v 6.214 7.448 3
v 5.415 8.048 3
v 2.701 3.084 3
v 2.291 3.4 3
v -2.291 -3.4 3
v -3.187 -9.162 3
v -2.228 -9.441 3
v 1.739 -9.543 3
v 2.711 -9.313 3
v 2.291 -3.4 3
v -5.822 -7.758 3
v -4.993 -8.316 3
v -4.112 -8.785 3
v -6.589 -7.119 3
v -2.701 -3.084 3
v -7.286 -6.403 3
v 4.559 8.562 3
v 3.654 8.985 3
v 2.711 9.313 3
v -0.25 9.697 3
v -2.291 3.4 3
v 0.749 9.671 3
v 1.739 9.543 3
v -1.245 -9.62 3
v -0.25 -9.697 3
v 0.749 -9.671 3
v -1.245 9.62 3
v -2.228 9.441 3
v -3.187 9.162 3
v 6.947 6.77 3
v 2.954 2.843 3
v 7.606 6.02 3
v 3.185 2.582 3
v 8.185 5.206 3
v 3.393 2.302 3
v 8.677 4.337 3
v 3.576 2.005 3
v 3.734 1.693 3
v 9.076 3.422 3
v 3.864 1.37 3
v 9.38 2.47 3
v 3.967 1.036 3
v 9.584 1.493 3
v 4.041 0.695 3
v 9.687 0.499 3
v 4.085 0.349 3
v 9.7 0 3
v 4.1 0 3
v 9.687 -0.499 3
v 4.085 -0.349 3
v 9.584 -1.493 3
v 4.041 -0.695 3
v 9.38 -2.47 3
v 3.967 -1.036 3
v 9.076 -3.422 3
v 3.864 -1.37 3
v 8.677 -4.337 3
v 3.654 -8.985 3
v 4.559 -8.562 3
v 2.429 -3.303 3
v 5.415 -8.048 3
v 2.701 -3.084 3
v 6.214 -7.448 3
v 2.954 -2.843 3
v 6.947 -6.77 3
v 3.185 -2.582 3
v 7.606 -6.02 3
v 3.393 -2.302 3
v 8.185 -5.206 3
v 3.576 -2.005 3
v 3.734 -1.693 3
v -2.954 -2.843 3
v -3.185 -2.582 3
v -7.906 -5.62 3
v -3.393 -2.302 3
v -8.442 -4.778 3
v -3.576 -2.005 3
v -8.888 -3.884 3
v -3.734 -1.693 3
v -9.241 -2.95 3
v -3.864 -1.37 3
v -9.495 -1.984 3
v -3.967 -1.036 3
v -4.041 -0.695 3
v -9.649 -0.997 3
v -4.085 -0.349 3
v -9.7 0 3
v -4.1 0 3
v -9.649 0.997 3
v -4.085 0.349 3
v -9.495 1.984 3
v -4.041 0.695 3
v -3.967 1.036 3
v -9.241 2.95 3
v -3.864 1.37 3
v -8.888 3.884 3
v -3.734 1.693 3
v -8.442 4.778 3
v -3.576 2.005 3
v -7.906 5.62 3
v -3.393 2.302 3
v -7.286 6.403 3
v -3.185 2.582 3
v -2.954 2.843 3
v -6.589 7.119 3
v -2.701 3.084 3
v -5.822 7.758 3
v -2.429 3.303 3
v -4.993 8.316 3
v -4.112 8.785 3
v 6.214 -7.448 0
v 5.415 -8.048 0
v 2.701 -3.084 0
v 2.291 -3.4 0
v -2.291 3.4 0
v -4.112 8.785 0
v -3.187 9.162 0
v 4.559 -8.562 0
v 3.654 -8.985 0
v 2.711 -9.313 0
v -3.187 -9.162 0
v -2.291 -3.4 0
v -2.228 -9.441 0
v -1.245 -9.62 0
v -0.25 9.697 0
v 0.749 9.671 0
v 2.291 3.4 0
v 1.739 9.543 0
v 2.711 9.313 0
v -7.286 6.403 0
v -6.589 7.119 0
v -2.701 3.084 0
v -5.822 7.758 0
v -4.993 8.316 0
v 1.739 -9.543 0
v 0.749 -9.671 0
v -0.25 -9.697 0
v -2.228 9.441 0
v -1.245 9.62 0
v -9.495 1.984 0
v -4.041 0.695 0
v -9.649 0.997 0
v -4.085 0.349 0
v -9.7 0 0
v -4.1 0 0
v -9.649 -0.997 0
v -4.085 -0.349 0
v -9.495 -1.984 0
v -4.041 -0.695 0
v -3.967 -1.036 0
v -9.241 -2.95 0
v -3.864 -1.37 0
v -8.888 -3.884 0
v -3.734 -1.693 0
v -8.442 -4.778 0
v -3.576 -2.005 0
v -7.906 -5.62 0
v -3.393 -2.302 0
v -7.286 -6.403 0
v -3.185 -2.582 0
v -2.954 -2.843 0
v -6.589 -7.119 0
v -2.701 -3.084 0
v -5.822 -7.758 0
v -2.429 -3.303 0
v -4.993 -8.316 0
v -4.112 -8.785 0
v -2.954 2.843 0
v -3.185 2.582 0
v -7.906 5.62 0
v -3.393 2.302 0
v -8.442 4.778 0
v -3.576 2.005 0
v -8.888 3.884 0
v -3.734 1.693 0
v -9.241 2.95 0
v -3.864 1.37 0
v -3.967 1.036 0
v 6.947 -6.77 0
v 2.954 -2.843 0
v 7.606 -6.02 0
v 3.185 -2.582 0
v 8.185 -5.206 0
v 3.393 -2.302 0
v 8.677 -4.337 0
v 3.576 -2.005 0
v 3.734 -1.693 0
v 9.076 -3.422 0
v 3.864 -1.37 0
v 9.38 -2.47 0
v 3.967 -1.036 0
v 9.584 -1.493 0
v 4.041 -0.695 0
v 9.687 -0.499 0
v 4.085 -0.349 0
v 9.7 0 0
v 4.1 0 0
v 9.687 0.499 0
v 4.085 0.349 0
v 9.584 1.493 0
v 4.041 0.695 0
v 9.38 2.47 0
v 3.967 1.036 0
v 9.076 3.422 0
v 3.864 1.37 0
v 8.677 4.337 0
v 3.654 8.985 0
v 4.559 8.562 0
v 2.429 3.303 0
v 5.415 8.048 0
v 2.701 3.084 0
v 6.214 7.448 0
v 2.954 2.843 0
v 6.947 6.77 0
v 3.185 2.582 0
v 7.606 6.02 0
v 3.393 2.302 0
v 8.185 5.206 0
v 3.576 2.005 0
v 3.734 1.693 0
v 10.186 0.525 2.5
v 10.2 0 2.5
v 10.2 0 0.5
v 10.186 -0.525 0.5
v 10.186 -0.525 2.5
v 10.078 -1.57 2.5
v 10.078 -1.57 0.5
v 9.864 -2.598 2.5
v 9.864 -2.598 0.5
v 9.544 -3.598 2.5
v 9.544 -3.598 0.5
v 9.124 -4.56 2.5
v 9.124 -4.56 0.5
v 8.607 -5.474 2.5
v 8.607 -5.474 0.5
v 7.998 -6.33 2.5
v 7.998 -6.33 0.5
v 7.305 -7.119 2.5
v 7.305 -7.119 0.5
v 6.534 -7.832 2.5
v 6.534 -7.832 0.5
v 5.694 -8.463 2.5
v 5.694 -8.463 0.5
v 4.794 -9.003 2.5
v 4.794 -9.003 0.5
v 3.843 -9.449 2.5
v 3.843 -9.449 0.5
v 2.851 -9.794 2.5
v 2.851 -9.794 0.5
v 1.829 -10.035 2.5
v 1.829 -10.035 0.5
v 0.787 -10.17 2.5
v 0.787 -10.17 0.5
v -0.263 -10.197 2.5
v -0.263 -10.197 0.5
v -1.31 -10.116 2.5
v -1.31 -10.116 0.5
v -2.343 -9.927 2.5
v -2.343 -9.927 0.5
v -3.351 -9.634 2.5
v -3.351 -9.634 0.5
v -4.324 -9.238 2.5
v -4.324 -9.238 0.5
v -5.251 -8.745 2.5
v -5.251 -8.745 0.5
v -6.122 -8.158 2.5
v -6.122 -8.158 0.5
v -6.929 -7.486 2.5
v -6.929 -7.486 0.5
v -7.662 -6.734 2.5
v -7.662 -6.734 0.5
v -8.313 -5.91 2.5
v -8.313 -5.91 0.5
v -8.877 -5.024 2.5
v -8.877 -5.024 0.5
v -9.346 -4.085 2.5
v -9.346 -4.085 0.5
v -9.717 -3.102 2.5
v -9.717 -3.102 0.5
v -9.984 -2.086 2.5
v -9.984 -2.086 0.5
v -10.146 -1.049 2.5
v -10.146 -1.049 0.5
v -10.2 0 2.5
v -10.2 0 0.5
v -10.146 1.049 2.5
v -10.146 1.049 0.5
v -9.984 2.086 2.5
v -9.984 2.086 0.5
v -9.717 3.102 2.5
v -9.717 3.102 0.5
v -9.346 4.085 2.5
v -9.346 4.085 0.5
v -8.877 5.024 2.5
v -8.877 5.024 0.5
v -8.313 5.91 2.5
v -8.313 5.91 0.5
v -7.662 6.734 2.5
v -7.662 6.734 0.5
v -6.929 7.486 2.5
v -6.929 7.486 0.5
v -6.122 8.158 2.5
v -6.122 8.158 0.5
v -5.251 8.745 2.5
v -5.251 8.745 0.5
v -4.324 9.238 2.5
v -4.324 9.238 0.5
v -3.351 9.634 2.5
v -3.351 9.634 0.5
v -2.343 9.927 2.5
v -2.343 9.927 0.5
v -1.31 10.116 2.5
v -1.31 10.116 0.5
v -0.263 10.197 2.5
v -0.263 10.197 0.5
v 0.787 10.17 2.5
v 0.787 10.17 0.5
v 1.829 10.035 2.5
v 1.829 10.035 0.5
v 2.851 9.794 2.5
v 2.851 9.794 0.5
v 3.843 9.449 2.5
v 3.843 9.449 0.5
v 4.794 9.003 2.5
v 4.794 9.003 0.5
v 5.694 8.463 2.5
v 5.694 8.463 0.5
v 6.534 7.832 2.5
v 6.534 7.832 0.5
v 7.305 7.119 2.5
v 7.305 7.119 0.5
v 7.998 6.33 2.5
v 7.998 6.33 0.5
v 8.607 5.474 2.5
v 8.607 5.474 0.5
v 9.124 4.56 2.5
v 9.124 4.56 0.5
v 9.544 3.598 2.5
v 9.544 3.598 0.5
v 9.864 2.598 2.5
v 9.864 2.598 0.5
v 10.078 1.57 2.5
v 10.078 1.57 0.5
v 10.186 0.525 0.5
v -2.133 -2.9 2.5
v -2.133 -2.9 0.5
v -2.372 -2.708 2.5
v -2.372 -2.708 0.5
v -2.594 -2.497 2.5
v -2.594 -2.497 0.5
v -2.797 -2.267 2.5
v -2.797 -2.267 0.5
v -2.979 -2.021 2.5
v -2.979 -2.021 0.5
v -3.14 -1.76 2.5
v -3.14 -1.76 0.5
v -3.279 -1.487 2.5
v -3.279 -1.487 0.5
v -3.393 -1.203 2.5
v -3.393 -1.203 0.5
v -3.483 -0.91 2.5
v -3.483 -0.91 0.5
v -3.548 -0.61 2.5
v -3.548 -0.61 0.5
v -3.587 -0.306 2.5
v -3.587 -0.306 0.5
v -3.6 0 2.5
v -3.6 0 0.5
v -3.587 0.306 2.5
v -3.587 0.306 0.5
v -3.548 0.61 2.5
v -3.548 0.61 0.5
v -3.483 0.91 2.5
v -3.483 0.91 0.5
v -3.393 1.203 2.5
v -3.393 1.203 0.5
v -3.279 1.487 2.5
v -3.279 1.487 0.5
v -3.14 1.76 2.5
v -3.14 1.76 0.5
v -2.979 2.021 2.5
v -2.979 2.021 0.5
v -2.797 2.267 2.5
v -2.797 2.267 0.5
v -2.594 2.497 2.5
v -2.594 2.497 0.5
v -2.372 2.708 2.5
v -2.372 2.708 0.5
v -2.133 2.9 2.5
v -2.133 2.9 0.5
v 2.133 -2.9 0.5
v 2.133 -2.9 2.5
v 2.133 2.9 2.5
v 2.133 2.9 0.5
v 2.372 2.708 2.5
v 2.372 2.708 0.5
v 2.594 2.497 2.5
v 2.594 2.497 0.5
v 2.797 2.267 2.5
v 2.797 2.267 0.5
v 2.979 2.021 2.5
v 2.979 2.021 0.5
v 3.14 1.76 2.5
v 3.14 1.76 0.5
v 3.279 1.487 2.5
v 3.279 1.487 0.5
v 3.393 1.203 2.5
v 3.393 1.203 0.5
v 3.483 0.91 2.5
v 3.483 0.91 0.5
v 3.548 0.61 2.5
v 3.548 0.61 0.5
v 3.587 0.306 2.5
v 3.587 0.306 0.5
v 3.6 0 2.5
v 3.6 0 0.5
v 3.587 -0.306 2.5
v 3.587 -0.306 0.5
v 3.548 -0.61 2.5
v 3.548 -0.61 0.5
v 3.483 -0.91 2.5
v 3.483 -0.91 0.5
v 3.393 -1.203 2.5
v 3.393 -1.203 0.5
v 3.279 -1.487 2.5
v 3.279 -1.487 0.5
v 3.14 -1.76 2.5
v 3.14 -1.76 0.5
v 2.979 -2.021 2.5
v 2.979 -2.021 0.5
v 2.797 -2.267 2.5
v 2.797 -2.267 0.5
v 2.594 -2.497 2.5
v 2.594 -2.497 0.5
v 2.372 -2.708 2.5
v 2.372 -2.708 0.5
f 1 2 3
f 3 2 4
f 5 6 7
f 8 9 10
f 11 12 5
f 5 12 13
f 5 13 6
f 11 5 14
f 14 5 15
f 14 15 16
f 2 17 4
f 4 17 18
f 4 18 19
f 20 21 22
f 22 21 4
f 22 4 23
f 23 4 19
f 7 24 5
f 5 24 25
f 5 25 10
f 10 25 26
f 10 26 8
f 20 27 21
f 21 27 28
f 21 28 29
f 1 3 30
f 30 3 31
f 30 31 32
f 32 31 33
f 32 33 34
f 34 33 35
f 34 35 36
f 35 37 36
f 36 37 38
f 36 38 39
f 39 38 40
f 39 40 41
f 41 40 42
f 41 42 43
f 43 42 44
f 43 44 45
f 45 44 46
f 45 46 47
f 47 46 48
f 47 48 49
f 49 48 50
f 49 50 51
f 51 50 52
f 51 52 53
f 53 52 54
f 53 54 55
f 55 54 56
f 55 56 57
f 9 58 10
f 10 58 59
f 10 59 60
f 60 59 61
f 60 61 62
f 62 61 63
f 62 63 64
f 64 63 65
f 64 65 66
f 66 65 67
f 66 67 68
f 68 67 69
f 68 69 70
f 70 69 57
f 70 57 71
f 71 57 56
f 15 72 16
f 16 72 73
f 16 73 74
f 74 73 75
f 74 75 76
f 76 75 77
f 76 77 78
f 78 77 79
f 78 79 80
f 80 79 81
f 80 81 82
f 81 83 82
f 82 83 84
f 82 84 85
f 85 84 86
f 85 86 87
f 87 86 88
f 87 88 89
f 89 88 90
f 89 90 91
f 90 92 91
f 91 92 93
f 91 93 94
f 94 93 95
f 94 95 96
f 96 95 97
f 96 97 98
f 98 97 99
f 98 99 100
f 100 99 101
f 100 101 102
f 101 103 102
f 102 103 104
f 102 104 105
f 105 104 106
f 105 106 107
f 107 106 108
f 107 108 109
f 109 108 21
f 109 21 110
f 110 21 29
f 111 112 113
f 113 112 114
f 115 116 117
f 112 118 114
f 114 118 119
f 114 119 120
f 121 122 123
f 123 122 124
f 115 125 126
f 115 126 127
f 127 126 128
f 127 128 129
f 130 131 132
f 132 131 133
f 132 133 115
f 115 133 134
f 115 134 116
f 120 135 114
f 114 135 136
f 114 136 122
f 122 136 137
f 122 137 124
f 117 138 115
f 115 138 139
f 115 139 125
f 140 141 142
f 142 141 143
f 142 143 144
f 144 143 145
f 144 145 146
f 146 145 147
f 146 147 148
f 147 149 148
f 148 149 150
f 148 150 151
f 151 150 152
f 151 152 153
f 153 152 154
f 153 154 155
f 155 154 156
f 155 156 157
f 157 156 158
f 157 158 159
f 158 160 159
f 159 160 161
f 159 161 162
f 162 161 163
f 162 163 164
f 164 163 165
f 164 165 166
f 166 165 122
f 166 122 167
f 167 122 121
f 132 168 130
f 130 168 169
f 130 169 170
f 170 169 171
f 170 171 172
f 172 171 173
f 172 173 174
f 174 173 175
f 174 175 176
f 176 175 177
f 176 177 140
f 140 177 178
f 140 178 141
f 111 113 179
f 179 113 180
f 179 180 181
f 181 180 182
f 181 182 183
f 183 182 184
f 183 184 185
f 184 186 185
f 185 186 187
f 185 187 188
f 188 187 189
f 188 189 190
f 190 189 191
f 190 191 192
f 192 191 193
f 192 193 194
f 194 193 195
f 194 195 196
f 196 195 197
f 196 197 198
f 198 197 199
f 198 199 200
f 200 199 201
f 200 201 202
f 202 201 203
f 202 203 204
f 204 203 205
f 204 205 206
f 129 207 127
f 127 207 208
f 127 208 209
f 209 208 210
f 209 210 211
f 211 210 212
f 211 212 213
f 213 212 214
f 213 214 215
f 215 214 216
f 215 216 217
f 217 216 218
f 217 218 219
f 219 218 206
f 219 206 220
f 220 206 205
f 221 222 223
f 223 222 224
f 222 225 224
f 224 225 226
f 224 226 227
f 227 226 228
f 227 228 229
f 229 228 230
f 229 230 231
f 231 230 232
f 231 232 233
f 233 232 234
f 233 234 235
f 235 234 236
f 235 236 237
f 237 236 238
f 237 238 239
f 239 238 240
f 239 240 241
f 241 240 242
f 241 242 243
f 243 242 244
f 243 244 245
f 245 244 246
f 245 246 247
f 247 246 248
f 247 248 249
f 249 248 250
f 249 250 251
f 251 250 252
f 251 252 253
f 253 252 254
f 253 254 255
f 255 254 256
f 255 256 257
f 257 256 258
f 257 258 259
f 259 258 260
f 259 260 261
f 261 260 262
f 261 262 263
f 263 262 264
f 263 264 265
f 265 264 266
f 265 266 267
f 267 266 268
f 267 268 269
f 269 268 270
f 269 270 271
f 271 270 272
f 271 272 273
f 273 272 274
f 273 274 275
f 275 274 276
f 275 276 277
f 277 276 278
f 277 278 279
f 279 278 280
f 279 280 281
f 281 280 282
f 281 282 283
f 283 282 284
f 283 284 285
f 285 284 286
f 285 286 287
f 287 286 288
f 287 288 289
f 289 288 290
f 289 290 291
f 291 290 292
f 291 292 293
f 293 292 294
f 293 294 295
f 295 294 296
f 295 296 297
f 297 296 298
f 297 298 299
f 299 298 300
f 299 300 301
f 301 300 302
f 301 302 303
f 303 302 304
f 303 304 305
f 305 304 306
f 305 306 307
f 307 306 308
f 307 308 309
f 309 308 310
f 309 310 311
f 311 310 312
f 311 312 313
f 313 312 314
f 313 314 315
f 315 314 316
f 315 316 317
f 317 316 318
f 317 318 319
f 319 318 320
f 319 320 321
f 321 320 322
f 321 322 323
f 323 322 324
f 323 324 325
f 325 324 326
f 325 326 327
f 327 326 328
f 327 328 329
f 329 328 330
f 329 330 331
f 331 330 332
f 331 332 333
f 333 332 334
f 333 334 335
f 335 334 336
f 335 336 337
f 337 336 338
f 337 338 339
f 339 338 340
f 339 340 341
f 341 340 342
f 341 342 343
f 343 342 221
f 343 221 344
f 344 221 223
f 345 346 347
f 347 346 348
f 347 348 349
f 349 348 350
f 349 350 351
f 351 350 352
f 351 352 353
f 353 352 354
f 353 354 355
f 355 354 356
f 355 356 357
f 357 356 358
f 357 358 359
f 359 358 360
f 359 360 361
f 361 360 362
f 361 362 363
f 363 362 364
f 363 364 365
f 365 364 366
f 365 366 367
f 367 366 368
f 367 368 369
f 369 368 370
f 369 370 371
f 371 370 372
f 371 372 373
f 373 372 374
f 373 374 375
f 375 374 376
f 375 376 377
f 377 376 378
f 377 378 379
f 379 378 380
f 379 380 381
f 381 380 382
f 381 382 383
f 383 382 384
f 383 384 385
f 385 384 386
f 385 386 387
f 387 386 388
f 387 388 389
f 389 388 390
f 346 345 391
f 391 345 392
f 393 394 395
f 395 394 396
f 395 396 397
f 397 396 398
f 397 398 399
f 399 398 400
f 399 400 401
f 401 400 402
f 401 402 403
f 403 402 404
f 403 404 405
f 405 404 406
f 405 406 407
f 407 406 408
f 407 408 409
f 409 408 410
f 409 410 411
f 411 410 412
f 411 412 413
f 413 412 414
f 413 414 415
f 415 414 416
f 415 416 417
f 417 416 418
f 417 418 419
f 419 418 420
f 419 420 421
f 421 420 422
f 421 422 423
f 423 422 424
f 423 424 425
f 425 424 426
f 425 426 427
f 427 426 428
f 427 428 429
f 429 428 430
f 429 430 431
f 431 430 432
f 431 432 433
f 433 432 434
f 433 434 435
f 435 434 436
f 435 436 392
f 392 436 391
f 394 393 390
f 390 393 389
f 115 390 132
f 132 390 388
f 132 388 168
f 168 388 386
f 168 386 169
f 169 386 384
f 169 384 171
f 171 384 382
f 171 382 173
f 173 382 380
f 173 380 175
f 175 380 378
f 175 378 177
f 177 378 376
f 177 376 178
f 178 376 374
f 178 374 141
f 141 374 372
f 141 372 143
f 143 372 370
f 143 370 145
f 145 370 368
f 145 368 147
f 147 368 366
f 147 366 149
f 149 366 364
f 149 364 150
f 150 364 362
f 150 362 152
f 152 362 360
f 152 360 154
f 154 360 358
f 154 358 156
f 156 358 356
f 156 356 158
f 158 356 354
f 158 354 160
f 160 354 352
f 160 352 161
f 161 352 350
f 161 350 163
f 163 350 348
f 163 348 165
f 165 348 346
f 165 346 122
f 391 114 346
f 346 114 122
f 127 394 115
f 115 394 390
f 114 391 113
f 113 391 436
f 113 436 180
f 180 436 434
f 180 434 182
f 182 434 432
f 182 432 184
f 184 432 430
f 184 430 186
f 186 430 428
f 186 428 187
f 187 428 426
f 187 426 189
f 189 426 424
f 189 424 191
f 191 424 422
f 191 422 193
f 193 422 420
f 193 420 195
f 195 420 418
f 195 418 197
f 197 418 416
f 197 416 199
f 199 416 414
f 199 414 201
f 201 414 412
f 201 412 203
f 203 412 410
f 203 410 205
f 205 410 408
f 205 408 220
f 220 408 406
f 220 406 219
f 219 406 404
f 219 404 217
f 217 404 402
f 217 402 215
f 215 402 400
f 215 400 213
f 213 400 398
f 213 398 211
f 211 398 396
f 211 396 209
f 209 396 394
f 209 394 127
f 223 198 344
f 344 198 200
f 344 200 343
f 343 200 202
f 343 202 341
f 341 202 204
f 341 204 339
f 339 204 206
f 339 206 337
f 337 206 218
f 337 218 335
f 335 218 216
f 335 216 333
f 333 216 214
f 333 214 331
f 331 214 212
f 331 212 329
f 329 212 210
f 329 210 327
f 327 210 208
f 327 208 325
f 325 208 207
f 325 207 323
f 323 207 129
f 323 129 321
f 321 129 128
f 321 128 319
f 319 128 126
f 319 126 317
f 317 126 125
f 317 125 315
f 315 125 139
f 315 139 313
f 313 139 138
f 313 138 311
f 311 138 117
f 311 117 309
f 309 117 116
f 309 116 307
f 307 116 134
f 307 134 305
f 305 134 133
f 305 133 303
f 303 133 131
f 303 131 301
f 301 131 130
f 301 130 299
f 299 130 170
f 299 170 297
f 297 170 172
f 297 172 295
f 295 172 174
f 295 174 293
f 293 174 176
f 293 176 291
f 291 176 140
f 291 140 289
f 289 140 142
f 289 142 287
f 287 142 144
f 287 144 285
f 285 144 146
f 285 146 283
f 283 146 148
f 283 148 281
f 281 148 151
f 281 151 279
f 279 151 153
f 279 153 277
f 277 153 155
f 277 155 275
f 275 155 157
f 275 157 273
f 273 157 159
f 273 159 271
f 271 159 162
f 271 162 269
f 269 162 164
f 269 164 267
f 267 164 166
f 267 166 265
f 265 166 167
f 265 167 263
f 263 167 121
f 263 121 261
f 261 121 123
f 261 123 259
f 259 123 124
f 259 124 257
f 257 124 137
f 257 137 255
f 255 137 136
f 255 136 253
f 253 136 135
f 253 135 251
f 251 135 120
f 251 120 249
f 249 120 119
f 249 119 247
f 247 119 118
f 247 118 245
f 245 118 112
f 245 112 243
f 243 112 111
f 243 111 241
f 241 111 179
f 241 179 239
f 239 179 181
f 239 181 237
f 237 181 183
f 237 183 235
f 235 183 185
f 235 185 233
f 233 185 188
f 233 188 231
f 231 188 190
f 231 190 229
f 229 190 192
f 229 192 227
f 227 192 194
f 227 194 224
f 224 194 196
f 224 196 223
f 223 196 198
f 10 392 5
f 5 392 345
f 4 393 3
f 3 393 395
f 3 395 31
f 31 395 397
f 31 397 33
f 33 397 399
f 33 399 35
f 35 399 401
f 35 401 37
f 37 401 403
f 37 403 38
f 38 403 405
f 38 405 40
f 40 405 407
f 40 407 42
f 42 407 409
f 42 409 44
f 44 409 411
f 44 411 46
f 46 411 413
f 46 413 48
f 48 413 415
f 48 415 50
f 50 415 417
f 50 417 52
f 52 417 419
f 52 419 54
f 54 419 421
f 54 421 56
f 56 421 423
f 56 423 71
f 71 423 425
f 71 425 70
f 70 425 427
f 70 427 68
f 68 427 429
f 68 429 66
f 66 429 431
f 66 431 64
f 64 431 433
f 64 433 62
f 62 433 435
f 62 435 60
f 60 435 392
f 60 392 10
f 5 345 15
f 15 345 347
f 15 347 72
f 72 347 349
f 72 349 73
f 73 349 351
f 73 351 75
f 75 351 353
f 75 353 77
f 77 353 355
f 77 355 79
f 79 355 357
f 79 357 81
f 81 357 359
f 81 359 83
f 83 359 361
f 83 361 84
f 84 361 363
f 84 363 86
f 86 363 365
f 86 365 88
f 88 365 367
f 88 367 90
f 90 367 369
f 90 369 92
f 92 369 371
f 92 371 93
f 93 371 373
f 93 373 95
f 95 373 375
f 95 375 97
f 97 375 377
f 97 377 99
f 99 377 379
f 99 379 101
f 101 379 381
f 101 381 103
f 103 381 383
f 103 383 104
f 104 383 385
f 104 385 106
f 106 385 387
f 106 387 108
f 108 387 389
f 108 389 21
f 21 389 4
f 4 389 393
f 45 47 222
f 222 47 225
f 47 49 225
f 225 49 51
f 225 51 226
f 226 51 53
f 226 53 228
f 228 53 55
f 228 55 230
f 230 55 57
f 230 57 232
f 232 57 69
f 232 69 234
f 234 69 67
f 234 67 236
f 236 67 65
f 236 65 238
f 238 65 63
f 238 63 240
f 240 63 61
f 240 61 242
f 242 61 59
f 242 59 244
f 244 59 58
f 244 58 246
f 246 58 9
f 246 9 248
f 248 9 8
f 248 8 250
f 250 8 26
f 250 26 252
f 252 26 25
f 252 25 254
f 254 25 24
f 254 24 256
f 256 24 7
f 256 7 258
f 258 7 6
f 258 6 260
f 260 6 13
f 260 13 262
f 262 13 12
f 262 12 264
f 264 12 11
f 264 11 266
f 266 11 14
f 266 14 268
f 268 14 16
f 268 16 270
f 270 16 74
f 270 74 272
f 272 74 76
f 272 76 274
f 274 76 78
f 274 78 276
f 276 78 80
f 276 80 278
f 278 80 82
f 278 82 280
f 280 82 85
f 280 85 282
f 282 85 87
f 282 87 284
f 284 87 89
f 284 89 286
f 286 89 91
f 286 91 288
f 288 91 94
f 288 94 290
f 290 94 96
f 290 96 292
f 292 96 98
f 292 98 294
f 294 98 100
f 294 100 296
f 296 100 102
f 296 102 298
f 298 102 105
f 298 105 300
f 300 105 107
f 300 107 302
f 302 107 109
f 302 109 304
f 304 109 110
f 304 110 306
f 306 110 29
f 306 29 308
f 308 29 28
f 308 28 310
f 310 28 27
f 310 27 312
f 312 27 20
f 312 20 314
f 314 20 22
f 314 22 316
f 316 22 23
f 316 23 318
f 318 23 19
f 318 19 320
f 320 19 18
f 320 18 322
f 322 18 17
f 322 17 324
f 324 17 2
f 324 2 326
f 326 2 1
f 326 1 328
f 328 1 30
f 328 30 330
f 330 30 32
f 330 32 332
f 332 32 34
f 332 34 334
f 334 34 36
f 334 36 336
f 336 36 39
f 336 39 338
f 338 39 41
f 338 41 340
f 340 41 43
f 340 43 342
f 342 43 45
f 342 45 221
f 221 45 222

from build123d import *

# Parameters (mm, degrees)
SKETCH1_R           = 10.2
BOSS_EXTRUDE1_DEPTH = 3
CHAMFER1_SIZE       = 0.5


with BuildPart() as part:
    # Sketch1 → Boss-Extrude1 (new body)
    with BuildSketch(Plane.XY):
        Circle(SKETCH1_R)
        with BuildLine():
            Line((-2.133072901, 2.9), (2.133072901, 2.9))
            ThreePointArc((2.133072901, 2.9), (3.6, 0), (2.133072901, -2.9))
            Line((2.133072901, -2.9), (-2.133072901, -2.9))
            ThreePointArc((-2.133072901, -2.9), (-3.6, 0), (-2.133072901, 2.9))
        make_face(mode=Mode.SUBTRACT)
    extrude(amount=BOSS_EXTRUDE1_DEPTH)

    # Chamfer1
    chamfer1_edges = [part.edges().sort_by_distance(p)[0] for p in [
        (3.6, 0, 3),
        (0, 2.9, 3),
        (-10.2, 0, 0),
        (-10.2, 0, 3),
        (-3.6, 0, 0),
        (0, -2.9, 0),
        (3.6, 0, 0),
        (0, 2.9, 0),
        (-3.6, 0, 3),
        (0, -2.9, 3),
    ]]
    chamfer(chamfer1_edges, length=CHAMFER1_SIZE)


solid = part.part
